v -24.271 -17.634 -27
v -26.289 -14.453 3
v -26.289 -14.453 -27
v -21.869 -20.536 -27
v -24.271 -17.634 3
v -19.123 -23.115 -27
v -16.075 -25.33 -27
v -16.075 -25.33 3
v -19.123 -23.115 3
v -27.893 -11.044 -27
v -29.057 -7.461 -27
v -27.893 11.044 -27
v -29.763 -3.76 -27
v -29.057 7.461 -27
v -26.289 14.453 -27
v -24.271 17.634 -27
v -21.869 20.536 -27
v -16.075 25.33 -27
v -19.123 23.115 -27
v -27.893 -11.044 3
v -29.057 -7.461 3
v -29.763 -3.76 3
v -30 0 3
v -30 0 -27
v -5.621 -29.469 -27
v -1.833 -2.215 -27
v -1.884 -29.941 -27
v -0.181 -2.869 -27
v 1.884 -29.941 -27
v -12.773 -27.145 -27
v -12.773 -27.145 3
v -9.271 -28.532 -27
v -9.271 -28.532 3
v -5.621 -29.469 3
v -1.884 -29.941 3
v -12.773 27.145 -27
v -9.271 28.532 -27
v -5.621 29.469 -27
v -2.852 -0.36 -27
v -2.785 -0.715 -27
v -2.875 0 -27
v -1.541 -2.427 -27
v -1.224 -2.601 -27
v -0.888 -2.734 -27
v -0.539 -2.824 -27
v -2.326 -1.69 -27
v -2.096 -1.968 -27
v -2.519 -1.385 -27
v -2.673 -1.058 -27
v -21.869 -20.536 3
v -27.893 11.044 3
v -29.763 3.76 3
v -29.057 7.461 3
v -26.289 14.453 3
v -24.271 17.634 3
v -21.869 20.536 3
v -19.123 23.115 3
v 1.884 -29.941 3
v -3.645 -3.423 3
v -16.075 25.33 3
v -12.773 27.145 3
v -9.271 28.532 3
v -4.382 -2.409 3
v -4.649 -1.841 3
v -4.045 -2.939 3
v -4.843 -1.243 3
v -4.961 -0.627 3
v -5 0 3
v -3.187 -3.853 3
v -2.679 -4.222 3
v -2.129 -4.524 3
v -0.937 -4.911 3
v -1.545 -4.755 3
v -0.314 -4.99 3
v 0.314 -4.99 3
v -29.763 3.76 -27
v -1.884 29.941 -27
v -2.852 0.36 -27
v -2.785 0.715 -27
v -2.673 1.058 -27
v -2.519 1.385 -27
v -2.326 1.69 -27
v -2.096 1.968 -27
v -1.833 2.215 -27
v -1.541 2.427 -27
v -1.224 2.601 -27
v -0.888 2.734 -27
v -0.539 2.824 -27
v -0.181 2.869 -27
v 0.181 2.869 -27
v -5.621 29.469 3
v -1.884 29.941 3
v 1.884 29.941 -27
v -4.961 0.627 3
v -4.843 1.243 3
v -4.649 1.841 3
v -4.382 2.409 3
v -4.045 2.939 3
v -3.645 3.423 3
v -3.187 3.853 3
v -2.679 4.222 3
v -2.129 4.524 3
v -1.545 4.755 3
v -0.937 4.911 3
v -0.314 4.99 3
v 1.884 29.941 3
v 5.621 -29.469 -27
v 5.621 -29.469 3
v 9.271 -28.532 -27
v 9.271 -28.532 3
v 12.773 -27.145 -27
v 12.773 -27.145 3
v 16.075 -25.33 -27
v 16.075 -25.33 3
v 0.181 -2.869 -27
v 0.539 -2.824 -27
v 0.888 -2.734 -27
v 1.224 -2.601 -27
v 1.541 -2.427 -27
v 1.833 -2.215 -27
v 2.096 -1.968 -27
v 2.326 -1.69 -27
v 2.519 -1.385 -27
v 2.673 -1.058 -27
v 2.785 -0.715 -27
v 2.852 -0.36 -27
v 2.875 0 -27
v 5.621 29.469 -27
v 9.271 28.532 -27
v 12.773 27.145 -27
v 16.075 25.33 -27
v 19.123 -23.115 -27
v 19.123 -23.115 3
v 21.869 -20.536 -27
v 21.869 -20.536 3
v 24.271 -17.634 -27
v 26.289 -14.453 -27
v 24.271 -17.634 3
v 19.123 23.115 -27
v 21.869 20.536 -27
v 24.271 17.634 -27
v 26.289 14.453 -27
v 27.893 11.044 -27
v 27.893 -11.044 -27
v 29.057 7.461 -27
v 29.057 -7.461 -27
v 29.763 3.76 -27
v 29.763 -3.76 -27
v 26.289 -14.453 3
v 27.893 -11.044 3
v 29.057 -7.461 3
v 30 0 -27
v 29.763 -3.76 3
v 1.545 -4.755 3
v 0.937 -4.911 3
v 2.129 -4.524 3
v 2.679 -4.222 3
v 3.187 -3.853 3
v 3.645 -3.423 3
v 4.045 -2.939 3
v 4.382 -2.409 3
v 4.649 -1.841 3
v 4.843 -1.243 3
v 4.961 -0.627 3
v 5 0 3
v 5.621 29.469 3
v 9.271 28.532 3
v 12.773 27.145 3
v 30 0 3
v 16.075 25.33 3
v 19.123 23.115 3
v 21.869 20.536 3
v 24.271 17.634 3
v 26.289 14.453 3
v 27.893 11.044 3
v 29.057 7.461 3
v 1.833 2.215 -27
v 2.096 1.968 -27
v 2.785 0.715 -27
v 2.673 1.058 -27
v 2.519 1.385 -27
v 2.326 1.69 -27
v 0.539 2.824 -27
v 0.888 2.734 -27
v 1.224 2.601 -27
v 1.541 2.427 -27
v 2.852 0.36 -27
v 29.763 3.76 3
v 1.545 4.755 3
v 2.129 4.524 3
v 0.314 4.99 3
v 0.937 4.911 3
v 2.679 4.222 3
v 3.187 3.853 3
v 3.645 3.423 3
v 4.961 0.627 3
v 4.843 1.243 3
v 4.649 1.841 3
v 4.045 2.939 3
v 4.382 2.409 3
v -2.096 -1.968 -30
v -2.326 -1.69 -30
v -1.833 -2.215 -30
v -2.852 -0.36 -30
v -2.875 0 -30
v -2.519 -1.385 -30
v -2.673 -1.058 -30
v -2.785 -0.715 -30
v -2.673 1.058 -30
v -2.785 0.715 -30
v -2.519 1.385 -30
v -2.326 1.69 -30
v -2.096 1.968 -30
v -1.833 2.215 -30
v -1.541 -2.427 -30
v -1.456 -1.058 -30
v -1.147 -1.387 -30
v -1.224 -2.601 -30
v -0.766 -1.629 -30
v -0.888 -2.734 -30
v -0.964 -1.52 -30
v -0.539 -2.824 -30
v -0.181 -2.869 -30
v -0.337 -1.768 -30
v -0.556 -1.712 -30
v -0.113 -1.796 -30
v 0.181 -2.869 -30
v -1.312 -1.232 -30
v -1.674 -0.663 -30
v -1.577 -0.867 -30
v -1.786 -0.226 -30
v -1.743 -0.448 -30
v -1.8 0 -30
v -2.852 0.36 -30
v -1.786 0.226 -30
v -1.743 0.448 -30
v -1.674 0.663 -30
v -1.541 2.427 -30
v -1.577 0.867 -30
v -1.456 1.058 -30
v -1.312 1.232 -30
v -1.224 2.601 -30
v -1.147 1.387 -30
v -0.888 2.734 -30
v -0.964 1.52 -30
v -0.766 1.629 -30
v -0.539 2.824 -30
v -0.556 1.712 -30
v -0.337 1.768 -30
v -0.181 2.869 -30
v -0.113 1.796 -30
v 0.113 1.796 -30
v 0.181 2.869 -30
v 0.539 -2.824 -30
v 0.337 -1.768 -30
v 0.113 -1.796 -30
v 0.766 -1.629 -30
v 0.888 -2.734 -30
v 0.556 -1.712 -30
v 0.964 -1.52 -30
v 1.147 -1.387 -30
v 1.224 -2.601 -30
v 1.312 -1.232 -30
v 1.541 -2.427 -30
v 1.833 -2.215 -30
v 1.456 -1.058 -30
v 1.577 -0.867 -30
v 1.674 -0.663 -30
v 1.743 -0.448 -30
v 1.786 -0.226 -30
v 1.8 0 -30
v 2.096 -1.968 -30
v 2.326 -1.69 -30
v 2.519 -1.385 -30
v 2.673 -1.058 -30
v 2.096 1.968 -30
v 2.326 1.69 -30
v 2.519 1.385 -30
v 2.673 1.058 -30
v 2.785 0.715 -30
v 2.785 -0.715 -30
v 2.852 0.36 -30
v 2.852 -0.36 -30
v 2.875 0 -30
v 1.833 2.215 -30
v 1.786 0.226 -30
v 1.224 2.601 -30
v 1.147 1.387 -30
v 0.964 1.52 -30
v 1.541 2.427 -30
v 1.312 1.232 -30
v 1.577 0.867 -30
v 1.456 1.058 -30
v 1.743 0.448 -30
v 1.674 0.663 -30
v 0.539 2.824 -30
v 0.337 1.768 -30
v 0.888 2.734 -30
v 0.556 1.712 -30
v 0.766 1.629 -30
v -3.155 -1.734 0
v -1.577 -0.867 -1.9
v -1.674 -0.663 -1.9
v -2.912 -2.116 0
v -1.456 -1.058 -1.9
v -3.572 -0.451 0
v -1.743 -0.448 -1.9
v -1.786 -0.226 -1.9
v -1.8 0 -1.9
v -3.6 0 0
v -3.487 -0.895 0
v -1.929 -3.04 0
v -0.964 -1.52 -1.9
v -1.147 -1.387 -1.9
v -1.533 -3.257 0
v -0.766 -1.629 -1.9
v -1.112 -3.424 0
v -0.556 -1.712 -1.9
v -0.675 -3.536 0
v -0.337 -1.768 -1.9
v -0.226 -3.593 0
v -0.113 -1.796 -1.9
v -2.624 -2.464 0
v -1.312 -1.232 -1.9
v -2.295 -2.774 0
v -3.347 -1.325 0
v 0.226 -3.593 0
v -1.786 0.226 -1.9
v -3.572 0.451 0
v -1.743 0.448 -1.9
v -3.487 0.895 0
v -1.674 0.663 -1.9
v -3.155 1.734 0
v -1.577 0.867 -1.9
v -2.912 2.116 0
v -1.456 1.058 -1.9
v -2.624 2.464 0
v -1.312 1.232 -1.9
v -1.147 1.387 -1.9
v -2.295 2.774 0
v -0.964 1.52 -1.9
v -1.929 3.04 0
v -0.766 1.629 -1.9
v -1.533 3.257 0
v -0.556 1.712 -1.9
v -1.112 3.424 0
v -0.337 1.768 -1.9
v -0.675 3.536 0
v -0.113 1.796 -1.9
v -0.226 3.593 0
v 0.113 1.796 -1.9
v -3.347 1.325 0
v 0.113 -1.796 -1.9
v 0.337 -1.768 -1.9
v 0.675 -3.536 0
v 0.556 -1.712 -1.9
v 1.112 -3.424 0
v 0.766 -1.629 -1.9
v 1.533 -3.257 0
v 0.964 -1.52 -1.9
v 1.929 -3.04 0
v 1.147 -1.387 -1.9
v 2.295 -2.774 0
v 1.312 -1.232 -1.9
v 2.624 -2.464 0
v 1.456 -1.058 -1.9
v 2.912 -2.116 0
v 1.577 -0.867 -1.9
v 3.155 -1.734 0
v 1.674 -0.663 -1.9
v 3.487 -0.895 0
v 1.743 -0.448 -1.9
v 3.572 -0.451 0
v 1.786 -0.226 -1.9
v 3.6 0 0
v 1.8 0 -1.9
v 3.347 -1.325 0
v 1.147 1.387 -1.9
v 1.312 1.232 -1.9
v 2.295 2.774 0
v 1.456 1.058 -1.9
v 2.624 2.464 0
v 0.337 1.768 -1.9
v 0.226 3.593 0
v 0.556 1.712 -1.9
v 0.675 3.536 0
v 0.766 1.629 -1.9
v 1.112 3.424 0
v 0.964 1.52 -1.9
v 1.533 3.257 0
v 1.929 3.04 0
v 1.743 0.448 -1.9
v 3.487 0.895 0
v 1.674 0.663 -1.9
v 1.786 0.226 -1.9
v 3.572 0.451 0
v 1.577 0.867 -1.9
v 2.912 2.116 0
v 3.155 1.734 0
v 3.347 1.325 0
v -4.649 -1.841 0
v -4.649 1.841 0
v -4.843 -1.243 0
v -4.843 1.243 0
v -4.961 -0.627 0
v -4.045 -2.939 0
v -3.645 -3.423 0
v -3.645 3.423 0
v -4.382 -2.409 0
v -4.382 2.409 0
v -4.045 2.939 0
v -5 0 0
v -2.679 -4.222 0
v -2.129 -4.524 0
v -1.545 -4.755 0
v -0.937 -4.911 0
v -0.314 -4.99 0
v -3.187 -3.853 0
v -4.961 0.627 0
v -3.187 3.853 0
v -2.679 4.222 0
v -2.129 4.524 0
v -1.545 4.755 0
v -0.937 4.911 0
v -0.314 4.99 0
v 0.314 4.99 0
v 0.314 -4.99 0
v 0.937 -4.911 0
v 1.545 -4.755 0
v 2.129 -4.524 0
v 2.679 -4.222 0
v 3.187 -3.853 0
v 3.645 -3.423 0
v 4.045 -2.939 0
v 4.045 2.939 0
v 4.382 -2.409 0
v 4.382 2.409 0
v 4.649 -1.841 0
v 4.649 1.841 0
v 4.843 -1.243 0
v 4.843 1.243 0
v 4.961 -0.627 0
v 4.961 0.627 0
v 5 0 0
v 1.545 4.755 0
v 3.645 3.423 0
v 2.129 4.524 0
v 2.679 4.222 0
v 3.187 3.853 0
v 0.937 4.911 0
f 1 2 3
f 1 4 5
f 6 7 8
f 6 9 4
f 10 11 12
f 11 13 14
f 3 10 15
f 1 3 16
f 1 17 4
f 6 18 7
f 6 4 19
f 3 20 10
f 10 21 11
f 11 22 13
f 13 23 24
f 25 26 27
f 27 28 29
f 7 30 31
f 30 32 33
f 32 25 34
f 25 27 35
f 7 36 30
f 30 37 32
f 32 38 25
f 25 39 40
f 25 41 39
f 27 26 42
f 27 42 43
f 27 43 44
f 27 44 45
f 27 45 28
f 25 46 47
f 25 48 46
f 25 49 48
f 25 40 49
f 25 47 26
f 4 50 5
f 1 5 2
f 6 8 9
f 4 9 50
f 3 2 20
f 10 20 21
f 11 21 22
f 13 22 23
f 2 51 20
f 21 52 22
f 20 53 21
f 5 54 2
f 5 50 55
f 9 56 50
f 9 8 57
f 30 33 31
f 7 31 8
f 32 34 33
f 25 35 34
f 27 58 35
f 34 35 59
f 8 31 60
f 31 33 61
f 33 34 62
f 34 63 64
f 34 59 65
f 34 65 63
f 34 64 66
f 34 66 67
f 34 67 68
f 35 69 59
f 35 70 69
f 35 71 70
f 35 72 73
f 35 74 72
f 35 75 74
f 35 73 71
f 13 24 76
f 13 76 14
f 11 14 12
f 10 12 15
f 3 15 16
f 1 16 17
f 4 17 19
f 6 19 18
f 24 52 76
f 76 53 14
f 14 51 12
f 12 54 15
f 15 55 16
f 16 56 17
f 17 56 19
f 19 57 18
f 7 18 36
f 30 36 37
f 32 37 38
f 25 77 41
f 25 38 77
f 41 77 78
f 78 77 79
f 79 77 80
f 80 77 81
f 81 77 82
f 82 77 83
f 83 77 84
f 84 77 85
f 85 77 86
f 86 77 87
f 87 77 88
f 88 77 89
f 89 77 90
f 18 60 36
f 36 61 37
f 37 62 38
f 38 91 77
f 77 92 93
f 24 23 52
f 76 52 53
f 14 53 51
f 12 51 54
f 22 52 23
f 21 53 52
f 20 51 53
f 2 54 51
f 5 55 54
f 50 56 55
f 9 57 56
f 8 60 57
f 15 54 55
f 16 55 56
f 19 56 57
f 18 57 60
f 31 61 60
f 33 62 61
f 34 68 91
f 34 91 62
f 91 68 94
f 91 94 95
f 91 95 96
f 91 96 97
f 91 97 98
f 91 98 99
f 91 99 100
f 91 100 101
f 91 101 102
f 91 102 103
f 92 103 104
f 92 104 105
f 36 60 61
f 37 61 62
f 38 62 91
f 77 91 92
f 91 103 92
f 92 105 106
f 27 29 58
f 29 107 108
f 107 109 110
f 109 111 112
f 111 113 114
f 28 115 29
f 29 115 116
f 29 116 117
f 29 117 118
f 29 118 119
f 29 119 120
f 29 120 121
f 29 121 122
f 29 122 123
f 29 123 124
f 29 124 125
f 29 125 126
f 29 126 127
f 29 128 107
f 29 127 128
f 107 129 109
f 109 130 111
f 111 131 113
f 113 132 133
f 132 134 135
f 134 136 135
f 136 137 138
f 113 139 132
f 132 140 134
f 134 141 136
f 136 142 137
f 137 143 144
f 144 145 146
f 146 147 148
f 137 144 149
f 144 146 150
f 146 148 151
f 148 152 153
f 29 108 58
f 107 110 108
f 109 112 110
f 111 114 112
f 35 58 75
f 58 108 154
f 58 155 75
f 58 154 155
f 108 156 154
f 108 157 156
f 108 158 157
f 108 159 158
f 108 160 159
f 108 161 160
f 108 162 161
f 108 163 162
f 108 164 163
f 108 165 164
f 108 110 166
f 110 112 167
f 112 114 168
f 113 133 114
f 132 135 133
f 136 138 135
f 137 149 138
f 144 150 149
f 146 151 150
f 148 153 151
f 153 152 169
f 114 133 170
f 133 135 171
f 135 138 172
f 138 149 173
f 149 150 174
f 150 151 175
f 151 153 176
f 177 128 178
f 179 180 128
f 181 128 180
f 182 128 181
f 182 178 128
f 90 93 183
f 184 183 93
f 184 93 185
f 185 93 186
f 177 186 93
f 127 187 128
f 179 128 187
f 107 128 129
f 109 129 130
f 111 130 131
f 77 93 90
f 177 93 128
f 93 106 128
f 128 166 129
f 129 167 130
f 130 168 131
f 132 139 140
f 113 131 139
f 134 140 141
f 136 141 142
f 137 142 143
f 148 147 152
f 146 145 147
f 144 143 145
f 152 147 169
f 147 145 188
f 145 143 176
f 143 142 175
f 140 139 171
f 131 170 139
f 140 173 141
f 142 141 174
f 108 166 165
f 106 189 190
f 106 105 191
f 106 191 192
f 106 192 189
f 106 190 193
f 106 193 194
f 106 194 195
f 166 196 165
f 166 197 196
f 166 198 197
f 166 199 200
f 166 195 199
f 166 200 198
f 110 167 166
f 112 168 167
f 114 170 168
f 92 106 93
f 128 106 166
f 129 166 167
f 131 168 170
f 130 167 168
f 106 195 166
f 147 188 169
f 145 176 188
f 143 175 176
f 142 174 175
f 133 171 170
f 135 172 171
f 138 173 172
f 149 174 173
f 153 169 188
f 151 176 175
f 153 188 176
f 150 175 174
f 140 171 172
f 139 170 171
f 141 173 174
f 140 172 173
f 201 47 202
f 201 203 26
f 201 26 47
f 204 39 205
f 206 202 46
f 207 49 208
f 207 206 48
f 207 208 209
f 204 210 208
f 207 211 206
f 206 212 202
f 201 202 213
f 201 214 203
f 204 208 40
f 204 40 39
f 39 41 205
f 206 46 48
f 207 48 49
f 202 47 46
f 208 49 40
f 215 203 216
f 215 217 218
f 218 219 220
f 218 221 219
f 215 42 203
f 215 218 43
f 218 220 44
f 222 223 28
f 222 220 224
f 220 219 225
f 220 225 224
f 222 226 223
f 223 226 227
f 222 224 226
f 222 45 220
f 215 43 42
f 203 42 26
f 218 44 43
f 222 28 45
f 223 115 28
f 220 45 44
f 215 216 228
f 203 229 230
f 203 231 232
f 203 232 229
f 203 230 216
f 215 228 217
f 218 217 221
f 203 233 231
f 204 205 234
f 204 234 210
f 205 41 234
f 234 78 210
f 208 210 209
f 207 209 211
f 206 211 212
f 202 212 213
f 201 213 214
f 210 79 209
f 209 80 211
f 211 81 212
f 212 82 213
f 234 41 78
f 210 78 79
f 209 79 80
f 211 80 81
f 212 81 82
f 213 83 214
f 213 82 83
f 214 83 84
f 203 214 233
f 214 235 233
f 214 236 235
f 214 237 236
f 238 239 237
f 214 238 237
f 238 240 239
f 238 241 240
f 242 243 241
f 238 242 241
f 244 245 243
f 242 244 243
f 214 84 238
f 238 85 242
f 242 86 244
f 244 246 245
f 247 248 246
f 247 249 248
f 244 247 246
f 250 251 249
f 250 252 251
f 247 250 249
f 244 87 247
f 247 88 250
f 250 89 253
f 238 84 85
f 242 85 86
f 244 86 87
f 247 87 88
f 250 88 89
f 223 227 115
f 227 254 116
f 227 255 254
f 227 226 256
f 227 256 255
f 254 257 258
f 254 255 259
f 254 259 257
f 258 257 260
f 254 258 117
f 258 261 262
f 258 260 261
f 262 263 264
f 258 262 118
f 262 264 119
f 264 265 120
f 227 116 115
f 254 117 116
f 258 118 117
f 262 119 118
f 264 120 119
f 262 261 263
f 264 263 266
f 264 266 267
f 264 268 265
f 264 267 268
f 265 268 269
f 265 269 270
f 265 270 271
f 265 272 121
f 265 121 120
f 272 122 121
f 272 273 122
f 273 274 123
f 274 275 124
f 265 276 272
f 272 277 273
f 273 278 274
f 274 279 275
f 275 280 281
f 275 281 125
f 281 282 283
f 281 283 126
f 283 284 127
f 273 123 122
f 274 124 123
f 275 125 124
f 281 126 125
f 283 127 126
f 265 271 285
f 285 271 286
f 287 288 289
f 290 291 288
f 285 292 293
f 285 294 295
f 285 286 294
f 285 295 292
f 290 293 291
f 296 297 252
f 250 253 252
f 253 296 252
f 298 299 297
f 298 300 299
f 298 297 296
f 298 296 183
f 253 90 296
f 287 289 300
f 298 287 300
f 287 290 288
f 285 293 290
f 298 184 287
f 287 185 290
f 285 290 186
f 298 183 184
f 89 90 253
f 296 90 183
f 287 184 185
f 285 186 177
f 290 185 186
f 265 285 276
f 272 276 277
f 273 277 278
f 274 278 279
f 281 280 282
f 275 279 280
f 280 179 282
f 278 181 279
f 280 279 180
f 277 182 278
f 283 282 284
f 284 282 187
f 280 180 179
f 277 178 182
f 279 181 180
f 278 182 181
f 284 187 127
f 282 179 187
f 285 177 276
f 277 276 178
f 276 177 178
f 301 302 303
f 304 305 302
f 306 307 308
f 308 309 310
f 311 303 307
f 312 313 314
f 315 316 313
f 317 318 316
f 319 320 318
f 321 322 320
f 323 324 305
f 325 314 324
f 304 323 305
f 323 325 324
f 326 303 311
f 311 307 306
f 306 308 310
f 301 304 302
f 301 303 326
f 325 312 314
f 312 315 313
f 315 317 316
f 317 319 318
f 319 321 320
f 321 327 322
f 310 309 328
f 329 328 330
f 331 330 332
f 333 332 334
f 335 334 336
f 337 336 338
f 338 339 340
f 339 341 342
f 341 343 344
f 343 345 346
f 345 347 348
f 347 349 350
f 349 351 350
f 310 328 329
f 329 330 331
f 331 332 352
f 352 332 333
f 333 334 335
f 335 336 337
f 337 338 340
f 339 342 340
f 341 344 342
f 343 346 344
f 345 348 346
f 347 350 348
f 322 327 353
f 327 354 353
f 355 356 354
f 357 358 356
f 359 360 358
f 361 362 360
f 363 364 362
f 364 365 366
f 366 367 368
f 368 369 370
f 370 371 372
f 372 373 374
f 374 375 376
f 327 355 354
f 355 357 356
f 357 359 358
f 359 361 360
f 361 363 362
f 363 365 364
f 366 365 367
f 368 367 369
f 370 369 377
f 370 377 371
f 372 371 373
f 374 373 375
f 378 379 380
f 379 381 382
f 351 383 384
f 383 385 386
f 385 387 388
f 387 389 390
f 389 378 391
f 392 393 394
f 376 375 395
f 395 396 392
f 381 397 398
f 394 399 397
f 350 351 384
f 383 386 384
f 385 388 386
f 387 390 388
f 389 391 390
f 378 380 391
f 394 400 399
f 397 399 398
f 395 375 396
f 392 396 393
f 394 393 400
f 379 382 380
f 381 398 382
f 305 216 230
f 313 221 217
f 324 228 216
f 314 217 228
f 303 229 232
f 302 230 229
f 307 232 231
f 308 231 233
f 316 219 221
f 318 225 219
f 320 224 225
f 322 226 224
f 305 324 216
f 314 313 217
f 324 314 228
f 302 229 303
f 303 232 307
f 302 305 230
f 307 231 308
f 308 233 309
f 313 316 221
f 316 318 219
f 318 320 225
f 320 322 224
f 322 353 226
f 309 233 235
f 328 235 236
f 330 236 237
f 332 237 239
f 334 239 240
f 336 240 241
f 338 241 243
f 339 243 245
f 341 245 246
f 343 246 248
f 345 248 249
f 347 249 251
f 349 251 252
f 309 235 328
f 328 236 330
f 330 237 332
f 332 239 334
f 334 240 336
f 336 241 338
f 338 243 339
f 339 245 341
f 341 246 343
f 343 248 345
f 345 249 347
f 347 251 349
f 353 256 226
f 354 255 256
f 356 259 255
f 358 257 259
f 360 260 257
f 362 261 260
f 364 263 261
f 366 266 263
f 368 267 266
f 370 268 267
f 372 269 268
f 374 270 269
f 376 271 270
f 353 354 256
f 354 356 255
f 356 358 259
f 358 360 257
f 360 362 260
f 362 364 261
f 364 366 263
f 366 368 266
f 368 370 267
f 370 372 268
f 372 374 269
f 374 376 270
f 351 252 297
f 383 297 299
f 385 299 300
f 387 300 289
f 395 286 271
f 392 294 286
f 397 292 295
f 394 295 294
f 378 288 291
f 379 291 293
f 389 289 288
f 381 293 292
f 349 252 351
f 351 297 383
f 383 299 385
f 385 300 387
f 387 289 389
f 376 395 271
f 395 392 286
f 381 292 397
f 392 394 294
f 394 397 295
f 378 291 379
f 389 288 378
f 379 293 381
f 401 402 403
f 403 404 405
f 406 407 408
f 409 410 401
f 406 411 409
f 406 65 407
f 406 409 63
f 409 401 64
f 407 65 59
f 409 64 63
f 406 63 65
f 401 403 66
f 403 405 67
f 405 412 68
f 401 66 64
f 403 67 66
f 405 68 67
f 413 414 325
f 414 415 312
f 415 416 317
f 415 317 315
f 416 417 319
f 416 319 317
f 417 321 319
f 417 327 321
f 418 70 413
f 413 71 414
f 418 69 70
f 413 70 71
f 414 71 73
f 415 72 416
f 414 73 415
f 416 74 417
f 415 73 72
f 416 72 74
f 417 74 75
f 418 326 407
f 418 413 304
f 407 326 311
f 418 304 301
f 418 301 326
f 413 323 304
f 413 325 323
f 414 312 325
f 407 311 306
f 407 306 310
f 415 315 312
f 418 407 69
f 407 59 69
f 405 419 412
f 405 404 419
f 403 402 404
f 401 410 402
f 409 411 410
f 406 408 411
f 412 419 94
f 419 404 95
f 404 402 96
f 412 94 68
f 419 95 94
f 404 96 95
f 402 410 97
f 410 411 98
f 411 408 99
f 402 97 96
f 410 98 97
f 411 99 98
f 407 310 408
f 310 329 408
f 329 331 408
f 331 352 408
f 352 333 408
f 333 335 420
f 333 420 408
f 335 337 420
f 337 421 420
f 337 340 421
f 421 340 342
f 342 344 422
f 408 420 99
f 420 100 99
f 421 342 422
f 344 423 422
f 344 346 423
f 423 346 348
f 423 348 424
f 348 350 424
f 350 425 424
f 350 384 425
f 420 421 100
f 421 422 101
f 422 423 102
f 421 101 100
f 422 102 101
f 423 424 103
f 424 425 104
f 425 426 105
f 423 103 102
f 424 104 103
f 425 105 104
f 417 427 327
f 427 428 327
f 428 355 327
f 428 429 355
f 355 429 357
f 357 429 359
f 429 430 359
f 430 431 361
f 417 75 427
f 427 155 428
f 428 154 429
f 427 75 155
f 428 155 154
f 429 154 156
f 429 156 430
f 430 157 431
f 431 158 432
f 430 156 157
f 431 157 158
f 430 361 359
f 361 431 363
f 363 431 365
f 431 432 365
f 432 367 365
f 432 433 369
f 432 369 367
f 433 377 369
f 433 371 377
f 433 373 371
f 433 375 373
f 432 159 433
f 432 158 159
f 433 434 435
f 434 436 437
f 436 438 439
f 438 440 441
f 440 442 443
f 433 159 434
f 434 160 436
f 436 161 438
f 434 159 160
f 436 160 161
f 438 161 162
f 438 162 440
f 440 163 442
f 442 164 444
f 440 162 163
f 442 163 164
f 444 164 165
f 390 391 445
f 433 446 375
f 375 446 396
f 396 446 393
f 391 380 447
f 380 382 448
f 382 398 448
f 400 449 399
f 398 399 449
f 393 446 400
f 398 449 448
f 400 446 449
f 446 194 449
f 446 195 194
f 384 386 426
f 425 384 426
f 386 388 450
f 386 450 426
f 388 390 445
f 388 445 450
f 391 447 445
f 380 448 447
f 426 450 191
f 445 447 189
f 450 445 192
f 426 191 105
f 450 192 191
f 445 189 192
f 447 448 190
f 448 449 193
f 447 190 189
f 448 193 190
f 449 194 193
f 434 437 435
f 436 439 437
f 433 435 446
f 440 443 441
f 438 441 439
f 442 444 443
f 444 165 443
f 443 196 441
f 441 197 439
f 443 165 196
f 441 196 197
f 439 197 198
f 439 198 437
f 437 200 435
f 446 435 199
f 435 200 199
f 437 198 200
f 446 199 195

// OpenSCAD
$fn = 50;

difference() {
	union() {
		translate(v = [0, 0, -27.0]) {
			cylinder(h = 30, r = 30.0);
		}
		#translate(v = [0, 0, -30.0]) {
			cylinder(h = 30, r = 2.875);
		}
	}
	union() {
		translate(v = [0, 0, 0]) {
			rotate(a = [0, 0, 0]) {
				difference() {
					union() {
						translate(v = [0, 0, -30.0]) {
							cylinder(h = 30, r = 1.5);
						}
						translate(v = [0, 0, -1.9]) {
							cylinder(h = 1.9, r1 = 1.8, r2 = 3.6);
						}
						translate(v = [0, 0, -30.0]) {
							cylinder(h = 30, r = 1.8);
						}
						translate(v = [0, 0, -30.0]) {
							cylinder(h = 30, r = 1.5);
						}
					}
					union();
				}
			}
		}
		#cylinder(h = 3, r = 5.0);
	}
}
